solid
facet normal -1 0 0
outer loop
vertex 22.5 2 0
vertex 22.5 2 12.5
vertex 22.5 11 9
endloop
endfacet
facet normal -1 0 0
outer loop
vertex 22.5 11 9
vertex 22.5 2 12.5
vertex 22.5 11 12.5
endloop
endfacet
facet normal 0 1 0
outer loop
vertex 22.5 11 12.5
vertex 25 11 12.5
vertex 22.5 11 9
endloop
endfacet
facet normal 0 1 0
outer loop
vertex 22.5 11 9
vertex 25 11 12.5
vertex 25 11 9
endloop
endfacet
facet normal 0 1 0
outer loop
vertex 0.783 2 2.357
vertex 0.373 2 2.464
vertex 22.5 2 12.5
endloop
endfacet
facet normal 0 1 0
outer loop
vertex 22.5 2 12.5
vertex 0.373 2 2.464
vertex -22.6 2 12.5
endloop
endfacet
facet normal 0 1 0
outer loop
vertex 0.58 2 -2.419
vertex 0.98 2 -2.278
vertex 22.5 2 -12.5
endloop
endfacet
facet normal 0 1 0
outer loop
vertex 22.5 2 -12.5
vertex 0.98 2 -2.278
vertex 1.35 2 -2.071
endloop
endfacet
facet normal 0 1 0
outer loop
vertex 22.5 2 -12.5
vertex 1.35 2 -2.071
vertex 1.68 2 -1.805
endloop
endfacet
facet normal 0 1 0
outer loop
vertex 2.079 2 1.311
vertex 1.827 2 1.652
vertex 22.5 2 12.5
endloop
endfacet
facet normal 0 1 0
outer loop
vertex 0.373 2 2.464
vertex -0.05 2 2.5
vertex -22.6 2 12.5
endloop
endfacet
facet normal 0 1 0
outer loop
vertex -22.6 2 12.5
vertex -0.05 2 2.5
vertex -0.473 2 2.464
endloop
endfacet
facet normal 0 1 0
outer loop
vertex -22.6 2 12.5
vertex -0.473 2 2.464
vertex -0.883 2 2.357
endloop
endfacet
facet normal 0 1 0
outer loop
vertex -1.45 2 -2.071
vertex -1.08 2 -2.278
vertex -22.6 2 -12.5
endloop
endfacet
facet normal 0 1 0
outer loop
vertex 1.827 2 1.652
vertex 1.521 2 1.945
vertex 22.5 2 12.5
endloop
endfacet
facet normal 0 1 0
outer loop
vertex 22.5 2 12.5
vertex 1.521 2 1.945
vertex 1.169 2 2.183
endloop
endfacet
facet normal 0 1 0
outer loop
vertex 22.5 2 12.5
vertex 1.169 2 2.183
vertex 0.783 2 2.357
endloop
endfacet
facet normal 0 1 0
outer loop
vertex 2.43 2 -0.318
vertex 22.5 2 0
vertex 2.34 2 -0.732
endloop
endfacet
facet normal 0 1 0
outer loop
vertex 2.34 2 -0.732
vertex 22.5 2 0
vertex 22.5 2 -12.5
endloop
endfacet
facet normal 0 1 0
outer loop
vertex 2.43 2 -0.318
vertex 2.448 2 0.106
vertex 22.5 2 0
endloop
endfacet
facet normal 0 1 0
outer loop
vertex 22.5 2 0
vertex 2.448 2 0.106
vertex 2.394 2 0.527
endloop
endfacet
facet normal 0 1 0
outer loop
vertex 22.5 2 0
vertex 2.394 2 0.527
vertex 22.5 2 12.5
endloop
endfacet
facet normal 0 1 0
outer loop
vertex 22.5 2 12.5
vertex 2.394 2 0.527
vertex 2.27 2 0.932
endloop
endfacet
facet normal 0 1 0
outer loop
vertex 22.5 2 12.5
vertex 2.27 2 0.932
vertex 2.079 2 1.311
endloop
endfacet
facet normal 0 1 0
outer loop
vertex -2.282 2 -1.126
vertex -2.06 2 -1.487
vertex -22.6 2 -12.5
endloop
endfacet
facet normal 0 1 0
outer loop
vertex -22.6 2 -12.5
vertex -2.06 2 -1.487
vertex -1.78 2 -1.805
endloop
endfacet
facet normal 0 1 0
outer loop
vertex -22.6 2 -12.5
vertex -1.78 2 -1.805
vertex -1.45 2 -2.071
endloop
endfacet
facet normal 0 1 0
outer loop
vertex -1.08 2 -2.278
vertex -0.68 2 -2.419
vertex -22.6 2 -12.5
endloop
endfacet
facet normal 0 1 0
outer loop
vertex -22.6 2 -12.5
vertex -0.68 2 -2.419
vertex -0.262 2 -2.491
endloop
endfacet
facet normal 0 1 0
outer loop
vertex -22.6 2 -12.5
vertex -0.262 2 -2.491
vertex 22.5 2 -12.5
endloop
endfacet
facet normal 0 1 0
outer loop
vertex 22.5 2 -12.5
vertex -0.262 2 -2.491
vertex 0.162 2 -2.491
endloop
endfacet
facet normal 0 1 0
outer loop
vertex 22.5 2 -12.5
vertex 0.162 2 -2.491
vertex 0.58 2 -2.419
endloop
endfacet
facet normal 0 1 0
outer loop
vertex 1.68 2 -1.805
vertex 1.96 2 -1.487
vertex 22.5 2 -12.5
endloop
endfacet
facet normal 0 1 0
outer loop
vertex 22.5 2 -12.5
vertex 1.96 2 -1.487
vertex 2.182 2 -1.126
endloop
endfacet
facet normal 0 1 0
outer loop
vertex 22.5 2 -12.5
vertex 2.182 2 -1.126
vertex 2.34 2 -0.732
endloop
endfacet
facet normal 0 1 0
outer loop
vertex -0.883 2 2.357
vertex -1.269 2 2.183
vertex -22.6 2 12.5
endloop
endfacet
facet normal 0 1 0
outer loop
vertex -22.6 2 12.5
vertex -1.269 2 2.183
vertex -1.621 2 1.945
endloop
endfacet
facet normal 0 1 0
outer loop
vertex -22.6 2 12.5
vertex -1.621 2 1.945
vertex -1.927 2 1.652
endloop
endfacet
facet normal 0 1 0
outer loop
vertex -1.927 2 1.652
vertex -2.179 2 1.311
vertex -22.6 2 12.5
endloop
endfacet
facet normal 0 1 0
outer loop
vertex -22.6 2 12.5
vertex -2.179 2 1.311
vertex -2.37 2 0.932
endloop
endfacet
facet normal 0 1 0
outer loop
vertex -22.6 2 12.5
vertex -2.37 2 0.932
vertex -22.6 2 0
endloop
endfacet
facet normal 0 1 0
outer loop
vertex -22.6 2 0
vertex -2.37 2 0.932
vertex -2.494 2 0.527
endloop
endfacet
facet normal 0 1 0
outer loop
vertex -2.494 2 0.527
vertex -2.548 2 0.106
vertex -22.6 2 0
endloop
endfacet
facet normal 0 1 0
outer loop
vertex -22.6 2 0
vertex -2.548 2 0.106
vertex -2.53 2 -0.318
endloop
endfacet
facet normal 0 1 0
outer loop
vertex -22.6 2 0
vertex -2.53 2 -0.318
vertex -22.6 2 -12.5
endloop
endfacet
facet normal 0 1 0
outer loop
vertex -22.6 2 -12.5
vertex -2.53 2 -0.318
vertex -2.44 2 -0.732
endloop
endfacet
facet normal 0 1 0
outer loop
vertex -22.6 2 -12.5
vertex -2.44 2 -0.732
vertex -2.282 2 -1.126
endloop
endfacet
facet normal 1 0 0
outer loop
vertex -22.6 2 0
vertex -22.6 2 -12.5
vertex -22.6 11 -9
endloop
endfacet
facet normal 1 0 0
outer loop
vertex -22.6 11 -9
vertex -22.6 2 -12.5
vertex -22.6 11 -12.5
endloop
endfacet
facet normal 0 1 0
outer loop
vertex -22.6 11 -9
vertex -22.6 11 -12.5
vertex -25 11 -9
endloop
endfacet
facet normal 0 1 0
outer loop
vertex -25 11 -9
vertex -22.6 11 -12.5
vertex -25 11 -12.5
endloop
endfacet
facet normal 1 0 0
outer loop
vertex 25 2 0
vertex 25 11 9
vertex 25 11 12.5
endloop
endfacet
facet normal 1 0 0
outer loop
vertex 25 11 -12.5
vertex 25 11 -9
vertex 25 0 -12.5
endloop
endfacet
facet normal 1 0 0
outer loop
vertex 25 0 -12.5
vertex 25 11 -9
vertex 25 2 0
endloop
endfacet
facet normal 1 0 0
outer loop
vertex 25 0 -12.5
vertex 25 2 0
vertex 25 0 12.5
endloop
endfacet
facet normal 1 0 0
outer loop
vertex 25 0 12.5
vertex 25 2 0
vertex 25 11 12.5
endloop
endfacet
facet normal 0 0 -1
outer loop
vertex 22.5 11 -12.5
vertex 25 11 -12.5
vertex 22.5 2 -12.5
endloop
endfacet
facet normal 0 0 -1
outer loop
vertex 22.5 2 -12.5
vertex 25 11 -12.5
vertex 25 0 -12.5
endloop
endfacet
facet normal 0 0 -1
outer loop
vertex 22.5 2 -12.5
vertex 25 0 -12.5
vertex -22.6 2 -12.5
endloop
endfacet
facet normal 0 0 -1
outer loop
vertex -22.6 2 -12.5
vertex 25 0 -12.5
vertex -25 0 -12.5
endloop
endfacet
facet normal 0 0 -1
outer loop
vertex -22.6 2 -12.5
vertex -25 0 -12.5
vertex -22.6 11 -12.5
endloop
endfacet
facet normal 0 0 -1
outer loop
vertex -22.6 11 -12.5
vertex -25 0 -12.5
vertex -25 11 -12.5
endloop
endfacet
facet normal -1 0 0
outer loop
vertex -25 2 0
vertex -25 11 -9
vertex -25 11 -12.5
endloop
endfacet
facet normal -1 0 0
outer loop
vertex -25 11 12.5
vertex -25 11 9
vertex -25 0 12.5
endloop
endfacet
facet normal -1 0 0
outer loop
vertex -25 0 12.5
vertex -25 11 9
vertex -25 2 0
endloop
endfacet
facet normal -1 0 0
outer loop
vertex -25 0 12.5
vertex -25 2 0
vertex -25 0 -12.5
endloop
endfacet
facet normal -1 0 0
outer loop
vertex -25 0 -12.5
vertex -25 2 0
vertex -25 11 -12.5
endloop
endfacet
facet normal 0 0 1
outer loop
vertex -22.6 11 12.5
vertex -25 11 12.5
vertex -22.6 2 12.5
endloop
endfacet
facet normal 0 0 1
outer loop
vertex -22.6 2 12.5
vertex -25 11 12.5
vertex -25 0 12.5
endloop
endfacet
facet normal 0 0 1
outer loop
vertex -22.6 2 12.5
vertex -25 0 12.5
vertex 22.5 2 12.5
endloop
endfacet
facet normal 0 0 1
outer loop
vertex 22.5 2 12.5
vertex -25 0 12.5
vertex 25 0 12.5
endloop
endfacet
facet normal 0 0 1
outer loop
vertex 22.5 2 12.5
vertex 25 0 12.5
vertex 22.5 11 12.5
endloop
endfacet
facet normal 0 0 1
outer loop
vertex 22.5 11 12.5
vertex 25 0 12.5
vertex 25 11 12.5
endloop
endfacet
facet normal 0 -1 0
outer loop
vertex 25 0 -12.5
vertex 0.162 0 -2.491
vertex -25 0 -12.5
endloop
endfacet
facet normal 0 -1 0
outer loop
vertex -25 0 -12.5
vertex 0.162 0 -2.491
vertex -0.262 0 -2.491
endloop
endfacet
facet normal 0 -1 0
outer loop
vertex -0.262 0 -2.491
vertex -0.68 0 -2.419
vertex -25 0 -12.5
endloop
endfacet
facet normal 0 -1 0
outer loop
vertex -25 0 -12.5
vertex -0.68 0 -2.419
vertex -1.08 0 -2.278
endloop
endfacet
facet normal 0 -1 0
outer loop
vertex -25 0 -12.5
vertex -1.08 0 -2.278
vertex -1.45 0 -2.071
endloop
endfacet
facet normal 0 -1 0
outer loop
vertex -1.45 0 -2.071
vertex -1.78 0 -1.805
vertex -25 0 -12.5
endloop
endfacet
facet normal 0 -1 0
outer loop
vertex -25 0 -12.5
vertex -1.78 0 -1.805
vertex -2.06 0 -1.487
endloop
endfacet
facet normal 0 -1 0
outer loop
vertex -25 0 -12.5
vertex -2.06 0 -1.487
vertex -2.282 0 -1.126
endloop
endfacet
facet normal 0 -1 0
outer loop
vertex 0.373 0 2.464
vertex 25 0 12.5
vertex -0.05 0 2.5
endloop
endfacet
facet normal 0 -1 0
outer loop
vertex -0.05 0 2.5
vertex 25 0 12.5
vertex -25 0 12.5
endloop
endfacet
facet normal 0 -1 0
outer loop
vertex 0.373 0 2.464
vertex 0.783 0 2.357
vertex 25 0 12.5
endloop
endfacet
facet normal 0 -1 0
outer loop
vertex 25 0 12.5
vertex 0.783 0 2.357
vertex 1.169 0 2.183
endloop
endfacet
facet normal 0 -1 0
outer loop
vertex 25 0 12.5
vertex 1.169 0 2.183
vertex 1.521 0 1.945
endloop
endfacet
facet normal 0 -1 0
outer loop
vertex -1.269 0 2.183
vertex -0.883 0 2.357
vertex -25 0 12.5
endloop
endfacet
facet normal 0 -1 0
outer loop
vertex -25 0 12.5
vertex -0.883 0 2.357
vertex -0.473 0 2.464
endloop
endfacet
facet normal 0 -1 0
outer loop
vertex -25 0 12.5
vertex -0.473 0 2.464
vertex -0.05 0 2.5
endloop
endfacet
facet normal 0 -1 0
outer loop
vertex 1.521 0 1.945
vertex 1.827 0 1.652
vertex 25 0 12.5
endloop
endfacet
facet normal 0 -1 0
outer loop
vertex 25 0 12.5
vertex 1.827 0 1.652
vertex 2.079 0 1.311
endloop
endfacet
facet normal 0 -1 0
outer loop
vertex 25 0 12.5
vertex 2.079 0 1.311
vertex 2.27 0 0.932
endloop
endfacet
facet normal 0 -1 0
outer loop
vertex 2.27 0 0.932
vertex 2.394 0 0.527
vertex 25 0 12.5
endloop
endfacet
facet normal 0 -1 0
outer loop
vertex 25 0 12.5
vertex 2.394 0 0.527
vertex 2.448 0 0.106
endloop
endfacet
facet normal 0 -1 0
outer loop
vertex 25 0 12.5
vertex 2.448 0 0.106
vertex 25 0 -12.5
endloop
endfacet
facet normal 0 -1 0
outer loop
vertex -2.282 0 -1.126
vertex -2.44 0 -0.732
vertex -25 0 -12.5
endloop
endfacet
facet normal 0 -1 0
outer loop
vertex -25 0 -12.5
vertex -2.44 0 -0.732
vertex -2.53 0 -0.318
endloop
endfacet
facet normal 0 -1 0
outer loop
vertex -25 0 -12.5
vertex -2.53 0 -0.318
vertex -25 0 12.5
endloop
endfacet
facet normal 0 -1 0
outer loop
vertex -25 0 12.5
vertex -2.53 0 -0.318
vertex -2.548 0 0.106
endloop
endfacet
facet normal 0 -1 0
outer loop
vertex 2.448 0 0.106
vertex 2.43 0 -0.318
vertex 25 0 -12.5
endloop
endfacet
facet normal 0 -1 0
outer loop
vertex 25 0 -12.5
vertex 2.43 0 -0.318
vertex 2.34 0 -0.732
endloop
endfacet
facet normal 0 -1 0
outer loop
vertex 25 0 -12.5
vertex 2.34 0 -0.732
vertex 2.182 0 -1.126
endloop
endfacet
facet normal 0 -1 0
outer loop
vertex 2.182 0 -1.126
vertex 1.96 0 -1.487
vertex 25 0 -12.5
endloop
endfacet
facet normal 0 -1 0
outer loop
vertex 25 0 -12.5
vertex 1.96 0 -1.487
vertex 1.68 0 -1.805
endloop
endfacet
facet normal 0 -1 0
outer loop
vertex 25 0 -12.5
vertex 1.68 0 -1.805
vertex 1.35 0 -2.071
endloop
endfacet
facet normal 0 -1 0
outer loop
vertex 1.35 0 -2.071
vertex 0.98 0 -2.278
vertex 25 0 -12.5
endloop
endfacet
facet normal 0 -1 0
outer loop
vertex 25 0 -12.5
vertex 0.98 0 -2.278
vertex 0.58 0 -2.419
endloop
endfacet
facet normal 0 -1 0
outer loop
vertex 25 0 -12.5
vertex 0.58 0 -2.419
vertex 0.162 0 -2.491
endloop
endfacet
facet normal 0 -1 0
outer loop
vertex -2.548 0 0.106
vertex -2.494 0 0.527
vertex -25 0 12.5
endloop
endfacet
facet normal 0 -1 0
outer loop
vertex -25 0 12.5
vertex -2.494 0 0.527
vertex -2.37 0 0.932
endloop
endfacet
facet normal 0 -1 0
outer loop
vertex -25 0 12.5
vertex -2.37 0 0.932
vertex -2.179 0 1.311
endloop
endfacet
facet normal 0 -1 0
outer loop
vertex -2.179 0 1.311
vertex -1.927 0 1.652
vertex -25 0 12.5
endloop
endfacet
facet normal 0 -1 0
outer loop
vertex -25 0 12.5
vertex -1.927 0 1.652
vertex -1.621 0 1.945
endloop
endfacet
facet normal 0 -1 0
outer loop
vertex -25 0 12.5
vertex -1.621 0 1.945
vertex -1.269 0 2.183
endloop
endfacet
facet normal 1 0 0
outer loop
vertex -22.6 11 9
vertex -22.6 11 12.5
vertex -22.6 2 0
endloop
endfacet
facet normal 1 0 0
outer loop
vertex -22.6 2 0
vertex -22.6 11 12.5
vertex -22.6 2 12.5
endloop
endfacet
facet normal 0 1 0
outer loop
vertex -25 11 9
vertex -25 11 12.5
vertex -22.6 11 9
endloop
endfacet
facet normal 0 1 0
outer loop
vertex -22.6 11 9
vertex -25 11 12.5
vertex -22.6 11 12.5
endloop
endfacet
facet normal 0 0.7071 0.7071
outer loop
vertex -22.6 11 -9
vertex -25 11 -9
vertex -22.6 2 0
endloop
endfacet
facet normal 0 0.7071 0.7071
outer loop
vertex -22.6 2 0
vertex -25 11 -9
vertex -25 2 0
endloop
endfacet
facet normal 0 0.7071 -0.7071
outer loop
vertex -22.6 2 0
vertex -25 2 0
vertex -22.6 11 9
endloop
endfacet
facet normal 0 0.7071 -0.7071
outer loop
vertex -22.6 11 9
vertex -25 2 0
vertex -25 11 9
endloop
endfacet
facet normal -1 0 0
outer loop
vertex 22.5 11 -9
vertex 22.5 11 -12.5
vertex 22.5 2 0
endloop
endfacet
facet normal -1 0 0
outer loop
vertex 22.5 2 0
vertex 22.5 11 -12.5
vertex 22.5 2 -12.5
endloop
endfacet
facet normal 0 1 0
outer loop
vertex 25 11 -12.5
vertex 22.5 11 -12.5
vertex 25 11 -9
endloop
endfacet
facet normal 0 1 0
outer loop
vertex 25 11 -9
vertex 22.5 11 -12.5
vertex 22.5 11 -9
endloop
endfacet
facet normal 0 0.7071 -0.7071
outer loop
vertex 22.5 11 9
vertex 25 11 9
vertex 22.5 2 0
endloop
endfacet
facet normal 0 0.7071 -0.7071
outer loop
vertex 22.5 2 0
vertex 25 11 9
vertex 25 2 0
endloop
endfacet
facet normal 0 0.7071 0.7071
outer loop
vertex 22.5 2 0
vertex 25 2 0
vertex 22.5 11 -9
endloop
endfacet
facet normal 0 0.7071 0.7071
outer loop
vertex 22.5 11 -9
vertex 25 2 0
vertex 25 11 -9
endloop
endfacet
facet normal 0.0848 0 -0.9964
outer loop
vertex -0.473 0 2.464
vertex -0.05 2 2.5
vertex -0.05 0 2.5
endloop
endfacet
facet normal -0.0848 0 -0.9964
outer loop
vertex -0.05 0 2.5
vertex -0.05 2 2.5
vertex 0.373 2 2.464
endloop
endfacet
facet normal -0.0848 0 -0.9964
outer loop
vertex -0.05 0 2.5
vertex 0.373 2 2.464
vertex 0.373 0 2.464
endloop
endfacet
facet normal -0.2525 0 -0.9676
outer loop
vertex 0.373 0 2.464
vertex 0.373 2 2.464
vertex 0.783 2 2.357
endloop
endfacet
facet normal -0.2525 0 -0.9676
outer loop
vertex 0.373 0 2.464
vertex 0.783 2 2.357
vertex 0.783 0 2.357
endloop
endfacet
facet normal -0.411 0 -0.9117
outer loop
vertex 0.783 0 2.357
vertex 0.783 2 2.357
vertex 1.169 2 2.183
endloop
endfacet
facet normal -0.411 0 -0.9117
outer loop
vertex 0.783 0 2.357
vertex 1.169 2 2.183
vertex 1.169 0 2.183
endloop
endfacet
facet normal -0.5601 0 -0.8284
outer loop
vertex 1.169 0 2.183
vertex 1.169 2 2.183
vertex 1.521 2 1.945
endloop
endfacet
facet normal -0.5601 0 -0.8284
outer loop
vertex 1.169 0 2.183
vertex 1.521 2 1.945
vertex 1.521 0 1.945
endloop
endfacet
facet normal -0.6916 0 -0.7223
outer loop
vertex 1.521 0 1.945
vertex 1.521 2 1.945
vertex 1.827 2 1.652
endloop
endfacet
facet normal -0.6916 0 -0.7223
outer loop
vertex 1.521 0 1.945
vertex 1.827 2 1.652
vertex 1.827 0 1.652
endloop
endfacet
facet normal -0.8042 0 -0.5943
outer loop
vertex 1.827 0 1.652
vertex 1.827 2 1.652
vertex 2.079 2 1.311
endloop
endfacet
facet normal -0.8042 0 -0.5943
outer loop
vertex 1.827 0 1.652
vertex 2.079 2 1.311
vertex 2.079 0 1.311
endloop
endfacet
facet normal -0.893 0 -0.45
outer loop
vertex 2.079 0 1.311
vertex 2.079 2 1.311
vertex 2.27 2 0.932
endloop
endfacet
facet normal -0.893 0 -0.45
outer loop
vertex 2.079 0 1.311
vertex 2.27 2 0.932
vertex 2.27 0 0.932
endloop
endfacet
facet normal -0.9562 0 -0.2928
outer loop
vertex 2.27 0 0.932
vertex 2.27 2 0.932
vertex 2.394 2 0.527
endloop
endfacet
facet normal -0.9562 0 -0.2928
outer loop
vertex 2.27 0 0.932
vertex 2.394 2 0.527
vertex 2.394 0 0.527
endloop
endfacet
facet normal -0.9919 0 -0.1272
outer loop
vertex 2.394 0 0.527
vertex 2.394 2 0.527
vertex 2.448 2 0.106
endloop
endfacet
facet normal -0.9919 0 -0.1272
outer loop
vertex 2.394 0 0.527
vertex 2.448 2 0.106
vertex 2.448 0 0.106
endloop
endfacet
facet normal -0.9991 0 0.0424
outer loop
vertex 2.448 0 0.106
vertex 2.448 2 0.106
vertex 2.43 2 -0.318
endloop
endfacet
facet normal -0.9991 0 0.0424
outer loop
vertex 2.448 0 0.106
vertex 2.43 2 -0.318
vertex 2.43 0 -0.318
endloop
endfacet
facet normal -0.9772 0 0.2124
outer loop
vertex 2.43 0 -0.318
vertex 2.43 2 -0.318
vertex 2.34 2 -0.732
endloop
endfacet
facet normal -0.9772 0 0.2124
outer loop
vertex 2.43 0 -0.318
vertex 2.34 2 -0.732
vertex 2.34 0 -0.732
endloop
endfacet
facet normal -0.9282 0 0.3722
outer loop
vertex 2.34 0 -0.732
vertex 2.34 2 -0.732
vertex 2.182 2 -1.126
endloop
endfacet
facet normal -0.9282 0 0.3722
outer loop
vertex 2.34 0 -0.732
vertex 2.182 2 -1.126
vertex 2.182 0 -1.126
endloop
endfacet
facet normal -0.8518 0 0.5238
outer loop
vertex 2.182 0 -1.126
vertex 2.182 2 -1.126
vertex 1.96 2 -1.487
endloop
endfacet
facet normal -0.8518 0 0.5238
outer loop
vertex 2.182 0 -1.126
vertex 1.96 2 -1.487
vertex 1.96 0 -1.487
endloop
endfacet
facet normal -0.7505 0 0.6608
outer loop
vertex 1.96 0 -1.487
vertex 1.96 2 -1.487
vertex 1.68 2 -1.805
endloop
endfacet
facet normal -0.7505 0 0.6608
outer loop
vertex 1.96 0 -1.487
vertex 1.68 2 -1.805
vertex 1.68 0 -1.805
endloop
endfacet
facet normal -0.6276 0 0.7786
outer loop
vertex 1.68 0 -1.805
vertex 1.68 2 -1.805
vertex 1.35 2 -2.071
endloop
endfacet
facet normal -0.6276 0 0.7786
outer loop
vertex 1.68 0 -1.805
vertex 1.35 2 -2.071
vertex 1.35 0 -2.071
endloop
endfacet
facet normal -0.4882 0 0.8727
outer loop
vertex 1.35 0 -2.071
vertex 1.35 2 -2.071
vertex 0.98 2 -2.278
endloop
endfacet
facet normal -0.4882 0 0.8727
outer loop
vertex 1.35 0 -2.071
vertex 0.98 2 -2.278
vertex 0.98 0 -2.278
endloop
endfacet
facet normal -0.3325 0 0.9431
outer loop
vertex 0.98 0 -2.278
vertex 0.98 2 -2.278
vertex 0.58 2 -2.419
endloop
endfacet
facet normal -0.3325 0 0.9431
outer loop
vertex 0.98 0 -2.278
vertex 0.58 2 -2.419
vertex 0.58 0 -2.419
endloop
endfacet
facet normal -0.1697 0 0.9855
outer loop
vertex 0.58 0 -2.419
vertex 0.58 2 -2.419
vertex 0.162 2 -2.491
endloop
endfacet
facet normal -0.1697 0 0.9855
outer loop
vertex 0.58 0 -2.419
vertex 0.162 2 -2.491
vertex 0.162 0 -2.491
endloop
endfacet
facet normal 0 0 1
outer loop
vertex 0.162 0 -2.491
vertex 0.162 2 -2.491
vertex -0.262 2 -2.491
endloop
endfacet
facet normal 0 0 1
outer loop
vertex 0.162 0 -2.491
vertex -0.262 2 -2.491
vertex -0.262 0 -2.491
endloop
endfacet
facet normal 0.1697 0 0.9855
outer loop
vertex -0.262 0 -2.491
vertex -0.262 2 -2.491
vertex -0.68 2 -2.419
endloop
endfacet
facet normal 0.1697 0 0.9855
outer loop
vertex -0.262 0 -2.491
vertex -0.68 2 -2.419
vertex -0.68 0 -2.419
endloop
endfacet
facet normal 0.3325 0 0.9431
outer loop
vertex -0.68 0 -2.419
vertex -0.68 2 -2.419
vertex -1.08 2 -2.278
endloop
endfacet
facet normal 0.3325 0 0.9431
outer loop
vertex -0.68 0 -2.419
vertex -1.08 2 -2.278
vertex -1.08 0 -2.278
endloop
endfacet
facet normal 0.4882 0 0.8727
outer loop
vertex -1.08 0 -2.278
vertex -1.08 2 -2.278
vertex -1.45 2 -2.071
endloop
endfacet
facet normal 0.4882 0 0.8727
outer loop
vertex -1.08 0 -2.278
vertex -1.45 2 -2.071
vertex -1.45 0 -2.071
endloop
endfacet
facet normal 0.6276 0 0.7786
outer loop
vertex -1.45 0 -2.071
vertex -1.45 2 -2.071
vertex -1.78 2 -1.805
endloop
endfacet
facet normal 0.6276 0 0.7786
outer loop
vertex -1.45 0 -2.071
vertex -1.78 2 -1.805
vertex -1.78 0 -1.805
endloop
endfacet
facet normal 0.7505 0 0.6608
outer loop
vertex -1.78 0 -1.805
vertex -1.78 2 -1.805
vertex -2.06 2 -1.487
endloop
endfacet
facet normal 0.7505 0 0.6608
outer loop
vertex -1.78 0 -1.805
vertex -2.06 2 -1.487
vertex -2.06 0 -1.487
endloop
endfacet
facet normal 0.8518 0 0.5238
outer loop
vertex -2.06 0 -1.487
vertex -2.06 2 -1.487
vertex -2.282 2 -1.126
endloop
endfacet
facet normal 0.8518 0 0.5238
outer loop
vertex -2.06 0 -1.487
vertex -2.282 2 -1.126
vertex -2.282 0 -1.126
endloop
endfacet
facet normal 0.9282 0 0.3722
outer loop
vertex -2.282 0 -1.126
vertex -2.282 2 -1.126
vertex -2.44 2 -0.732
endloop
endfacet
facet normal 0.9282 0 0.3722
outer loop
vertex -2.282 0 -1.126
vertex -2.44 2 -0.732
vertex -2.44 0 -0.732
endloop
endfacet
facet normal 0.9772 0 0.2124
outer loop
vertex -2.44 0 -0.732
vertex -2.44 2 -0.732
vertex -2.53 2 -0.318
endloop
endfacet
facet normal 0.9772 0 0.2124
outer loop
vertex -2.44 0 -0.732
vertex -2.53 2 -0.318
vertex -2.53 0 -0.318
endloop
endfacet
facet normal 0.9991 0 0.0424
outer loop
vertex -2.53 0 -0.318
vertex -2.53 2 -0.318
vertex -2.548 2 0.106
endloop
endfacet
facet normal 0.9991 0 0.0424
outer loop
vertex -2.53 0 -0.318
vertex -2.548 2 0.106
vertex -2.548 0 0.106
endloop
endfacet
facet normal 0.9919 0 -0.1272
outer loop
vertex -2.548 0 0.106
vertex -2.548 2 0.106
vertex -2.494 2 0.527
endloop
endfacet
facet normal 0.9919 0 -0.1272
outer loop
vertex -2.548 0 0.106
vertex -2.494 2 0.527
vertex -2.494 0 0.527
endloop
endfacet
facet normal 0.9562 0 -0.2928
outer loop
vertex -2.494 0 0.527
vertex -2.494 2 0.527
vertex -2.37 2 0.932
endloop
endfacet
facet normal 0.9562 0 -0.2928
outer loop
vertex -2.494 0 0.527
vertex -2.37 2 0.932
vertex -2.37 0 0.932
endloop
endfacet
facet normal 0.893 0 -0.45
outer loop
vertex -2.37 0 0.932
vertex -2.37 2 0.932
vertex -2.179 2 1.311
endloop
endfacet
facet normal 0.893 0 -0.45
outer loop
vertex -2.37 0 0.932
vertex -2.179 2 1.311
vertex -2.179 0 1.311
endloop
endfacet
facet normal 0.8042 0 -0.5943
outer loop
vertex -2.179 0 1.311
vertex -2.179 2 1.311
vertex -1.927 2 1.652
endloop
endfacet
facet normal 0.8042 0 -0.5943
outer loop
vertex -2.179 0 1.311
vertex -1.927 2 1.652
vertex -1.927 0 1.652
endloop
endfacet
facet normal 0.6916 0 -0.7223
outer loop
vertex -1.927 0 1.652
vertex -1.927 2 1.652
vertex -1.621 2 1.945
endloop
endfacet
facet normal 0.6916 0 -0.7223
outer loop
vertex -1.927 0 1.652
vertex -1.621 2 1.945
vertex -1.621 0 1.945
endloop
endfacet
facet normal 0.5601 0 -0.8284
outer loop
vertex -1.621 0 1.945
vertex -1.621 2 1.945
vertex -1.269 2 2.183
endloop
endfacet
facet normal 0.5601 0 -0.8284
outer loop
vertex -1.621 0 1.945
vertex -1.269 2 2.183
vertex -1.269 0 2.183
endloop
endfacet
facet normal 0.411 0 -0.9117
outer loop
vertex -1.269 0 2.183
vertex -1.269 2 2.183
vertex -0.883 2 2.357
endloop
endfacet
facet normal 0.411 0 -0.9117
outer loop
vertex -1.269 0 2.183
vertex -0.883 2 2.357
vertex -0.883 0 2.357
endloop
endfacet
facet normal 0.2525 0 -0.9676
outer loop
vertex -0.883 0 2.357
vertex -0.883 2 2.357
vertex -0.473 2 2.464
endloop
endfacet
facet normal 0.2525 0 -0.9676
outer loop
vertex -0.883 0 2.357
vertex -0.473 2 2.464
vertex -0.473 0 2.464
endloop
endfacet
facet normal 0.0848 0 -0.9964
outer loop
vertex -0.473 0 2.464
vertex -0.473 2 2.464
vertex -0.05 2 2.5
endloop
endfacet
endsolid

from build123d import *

# Parameters (mm, degrees)
SKETCH1_W           = 50
SKETCH1_H           = 25
BOSS_EXTRUDE1_DEPTH = 2
SKETCH2_W           = 2.4
SKETCH2_H           = 25
BOSS_EXTRUDE2_DEPTH = 9
CUT_EXTRUDE1_DEPTH  = 9
SKETCH4_W           = 2.5
SKETCH4_H           = 25
BOSS_EXTRUDE3_DEPTH = 9
CUT_EXTRUDE2_DEPTH  = 9
SKETCH6_R           = 2.5
CUT_EXTRUDE4_DEPTH  = 3


with BuildPart() as part:
    # Sketch1 → Boss-Extrude1 (new body)
    with BuildSketch(Plane(origin=(0, 0, 0), x_dir=(1, 0, 0), z_dir=(0, 1, 0))):
        Rectangle(SKETCH1_W, SKETCH1_H)
    extrude(amount=BOSS_EXTRUDE1_DEPTH)

    # Sketch2 → Boss-Extrude2 (add)
    with BuildSketch(Plane(origin=(0, 2, 0), x_dir=(1, 0, 0), z_dir=(0, 1, 0))):
        with Locations((-23.8, 0)):
            Rectangle(SKETCH2_W, SKETCH2_H)
    extrude(amount=BOSS_EXTRUDE2_DEPTH)

    # Sketch3 → Cut-Extrude1 (cut)
    with BuildSketch(Plane(origin=(-22.6, 0, 0), x_dir=(0, 0, -1), z_dir=(1, 0, 0))):
        Polygon((-9, 11), (0, 2), (9, 11), align=None)
    extrude(amount=-CUT_EXTRUDE1_DEPTH, mode=Mode.SUBTRACT)

    # Sketch4 → Boss-Extrude3 (add)
    with BuildSketch(Plane(origin=(0, 2, 0), x_dir=(1, 0, 0), z_dir=(0, 1, 0))):
        with Locations((23.75, 0)):
            Rectangle(SKETCH4_W, SKETCH4_H)
    extrude(amount=BOSS_EXTRUDE3_DEPTH)

    # Sketch5 → Cut-Extrude2 (cut)
    with BuildSketch(Plane.ZY.offset(-22.5)):
        Polygon((0, 2), (-9, 11), (9, 11), align=None)
    extrude(amount=-CUT_EXTRUDE2_DEPTH, mode=Mode.SUBTRACT)

    # Sketch6 → Cut-Extrude4 (cut, through all)
    with BuildSketch(Plane(origin=(0, 2, 0), x_dir=(1, 0, 0), z_dir=(0, 1, 0))):
        with Locations((-0.05, 0)):
            Circle(SKETCH6_R)
    extrude(amount=-CUT_EXTRUDE4_DEPTH, mode=Mode.SUBTRACT)


solid = part.part
